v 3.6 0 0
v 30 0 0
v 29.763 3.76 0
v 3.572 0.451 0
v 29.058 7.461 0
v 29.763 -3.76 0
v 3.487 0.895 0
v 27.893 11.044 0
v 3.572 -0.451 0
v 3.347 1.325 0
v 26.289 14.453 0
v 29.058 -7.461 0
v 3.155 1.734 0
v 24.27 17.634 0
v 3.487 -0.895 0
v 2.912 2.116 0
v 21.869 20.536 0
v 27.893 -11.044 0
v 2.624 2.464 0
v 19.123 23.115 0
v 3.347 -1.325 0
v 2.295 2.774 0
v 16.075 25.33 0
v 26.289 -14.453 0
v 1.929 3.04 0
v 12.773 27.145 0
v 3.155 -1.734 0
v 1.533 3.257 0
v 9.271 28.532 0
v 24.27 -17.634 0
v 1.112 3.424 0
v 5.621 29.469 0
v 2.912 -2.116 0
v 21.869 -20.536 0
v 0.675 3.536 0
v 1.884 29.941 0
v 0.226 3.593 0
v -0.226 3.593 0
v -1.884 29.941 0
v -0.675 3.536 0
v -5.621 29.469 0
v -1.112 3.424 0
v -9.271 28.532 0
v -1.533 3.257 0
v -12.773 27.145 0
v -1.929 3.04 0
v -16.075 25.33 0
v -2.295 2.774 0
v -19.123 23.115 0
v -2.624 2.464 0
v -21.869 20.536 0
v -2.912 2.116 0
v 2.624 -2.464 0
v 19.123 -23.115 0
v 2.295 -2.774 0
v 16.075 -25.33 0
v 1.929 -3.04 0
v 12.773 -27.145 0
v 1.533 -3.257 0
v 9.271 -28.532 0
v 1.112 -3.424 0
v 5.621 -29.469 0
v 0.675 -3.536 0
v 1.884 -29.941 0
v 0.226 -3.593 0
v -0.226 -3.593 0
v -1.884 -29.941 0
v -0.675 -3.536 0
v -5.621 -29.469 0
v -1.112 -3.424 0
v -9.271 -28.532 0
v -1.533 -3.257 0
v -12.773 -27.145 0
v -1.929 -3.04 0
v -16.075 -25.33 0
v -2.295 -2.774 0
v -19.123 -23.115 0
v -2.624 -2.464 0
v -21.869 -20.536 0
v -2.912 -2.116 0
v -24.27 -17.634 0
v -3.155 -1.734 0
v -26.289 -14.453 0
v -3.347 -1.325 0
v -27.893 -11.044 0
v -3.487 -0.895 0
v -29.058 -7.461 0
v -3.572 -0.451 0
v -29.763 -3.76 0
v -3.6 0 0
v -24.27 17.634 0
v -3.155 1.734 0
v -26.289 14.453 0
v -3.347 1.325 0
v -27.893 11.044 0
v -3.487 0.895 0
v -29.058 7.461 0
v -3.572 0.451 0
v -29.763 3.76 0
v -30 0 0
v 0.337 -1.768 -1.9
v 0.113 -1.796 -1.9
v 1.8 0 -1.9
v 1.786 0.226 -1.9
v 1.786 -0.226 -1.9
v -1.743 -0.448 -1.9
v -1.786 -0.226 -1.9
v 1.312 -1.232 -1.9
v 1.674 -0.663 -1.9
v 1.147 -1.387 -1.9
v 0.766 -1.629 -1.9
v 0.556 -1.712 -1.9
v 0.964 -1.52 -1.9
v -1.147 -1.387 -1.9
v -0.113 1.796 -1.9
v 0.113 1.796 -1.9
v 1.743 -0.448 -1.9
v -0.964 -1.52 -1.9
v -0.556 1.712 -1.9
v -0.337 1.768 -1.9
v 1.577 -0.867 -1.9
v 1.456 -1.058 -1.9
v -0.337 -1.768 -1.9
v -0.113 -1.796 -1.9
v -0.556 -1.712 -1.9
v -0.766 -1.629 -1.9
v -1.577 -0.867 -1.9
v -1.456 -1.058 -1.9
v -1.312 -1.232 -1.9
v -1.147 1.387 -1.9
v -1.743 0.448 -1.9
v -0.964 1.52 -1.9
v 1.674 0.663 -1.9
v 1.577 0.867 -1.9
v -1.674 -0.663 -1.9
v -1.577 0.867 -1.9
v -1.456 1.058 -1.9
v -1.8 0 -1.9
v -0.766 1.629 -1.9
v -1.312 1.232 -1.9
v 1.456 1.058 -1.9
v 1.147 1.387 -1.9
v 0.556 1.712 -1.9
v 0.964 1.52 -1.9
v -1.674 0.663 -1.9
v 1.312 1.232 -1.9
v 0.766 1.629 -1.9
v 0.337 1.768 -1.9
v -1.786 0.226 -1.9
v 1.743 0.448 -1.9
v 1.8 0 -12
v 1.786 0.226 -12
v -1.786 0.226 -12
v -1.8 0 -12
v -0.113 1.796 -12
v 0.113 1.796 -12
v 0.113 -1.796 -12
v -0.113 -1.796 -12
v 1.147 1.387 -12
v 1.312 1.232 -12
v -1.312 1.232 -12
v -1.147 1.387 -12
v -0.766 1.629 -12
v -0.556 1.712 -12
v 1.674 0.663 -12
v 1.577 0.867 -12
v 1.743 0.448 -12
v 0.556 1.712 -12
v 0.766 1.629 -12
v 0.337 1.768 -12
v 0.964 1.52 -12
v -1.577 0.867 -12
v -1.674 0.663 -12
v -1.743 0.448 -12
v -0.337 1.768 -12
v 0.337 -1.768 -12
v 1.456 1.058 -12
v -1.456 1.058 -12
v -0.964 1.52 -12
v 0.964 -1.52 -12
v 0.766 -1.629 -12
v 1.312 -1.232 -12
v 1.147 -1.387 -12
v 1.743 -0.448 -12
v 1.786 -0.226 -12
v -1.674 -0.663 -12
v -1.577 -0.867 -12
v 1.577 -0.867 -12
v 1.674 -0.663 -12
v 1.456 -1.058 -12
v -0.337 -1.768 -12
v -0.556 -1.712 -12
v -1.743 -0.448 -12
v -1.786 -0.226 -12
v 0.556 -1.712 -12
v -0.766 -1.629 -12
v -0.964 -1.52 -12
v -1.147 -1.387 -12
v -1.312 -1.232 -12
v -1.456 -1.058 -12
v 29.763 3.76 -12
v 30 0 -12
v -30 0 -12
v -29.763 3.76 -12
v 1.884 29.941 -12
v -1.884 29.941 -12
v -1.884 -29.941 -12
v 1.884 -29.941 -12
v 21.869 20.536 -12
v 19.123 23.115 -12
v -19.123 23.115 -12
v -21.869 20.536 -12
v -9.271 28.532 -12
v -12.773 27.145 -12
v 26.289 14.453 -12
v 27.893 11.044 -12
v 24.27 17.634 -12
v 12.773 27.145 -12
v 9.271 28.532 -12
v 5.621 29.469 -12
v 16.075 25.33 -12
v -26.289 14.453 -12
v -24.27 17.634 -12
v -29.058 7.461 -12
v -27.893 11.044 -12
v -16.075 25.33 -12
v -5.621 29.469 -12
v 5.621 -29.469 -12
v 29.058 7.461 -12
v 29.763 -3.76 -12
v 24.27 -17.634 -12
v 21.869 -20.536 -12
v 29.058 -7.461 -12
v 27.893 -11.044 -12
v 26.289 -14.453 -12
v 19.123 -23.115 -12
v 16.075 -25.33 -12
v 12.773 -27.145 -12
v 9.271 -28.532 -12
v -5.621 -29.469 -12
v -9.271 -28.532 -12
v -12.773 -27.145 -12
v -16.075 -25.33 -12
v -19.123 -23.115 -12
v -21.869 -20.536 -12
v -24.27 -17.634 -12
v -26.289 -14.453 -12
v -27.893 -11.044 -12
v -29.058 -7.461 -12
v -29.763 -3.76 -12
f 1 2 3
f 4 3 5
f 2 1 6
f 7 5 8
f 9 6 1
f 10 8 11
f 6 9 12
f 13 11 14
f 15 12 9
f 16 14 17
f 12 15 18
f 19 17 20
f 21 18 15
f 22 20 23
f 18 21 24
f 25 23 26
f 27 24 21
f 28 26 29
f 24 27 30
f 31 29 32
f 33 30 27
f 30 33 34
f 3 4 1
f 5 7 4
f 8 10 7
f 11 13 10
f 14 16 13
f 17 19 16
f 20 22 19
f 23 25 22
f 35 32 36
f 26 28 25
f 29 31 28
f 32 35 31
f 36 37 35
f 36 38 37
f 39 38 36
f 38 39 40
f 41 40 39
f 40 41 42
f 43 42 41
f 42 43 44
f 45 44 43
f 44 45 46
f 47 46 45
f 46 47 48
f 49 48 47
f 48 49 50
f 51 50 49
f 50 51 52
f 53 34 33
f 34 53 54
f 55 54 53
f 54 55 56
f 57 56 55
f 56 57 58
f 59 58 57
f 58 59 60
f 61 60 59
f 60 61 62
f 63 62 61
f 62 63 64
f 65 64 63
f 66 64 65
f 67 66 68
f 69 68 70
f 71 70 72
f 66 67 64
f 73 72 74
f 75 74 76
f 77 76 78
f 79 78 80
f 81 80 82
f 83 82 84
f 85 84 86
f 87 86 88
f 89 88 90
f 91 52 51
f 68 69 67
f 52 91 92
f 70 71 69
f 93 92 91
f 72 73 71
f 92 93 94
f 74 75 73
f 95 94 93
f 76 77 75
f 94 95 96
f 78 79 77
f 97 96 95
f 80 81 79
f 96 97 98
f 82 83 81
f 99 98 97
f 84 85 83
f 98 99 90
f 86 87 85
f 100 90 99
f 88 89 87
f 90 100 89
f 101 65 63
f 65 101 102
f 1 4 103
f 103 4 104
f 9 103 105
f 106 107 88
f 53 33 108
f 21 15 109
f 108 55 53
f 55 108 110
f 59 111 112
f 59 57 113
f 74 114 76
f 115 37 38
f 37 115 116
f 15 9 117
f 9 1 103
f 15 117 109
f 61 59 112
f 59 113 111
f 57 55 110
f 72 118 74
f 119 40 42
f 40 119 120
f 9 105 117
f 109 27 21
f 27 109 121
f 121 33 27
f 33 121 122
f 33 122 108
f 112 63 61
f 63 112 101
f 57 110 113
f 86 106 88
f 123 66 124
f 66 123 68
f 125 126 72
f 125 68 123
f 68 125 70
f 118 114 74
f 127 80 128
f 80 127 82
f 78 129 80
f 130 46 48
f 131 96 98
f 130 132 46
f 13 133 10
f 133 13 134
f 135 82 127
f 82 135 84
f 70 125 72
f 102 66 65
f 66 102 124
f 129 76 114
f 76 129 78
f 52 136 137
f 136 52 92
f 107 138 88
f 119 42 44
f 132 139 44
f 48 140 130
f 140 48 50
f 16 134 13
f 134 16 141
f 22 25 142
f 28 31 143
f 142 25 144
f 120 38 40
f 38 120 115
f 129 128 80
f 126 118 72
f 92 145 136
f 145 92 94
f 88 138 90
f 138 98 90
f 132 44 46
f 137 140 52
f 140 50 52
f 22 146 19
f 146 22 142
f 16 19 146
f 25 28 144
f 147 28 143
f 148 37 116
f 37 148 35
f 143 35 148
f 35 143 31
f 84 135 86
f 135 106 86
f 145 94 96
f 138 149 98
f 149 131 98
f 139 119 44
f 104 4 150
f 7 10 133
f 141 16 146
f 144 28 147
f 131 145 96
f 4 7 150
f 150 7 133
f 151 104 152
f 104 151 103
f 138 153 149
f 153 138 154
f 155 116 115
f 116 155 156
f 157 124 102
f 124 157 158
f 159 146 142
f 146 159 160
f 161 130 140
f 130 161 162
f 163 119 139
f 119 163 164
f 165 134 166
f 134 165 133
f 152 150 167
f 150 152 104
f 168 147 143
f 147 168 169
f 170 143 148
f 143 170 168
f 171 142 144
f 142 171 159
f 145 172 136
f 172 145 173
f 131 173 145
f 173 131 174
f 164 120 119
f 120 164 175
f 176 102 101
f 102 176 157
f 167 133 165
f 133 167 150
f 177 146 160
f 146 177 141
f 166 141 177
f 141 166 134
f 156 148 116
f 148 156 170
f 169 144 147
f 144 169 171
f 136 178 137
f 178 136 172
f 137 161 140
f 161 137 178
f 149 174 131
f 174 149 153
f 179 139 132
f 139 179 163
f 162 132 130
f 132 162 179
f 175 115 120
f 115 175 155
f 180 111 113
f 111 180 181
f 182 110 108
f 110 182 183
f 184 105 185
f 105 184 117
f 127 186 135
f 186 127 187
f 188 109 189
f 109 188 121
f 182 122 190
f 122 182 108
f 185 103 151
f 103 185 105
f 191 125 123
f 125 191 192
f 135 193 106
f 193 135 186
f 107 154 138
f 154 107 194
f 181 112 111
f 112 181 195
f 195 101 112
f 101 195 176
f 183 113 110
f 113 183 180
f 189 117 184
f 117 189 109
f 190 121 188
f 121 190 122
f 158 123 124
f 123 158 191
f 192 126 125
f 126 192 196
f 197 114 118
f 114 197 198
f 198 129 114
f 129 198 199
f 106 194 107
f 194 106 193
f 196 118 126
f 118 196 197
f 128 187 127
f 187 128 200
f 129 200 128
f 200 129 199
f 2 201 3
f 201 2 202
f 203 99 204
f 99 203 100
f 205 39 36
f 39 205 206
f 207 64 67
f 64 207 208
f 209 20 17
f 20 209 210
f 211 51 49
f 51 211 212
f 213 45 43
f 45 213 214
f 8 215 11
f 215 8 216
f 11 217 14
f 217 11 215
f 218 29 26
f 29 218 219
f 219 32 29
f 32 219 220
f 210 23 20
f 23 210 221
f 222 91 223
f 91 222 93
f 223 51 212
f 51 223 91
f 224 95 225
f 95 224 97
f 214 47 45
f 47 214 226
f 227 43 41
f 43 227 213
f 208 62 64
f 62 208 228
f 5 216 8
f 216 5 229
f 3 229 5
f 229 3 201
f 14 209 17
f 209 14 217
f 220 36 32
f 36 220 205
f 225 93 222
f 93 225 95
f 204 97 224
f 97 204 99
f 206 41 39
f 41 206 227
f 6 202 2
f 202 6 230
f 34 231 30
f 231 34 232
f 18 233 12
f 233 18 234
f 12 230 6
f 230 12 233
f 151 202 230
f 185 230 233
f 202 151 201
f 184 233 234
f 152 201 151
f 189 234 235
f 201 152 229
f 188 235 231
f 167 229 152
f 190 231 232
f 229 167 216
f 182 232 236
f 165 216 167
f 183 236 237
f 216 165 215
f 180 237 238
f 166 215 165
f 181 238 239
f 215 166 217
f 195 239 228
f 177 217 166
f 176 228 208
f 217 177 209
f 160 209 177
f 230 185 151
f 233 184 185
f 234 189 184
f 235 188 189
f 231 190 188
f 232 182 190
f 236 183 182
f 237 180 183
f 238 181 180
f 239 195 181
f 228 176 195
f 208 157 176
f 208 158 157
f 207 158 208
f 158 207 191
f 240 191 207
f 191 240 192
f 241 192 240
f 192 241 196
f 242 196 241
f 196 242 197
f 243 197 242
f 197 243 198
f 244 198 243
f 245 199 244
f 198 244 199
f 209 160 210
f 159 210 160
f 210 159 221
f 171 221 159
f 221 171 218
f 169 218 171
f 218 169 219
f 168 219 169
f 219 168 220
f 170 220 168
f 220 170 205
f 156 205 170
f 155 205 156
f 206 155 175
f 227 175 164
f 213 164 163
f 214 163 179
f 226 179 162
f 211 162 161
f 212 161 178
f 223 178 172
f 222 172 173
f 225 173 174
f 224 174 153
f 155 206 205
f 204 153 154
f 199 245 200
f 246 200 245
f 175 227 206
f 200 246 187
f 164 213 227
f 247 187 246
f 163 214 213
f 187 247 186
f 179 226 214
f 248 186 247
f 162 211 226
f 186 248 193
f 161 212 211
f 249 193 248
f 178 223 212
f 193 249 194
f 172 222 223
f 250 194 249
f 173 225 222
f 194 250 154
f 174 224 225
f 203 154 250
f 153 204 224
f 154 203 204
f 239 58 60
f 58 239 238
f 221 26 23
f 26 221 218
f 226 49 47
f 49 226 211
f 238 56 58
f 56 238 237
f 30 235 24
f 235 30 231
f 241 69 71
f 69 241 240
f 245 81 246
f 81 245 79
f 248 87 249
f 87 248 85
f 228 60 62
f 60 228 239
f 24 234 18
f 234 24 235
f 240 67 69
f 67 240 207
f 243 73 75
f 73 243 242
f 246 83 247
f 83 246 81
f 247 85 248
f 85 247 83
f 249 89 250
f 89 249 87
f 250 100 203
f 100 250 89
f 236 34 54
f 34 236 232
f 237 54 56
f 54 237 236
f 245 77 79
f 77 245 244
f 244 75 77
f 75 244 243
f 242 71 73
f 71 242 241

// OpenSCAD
$fn = 50;


difference() {
	union() {
		translate(v = [0, 0, -12.0000000000]) {
			cylinder(h = 12, r = 30.0000000000);
		}
	}
	union() {
		translate(v = [0, 0, 0]) {
			rotate(a = [0, 0, 0]) {
				difference() {
					union() {
						translate(v = [0, 0, -15.0000000000]) {
							cylinder(h = 15, r = 1.5000000000);
						}
						translate(v = [0, 0, -1.9000000000]) {
							cylinder(h = 1.9000000000, r1 = 1.8000000000, r2 = 3.6000000000);
						}
						translate(v = [0, 0, -15.0000000000]) {
							cylinder(h = 15, r = 1.8000000000);
						}
						translate(v = [0, 0, -15.0000000000]) {
							cylinder(h = 15, r = 1.5000000000);
						}
					}
					union();
				}
			}
		}
	}
}
